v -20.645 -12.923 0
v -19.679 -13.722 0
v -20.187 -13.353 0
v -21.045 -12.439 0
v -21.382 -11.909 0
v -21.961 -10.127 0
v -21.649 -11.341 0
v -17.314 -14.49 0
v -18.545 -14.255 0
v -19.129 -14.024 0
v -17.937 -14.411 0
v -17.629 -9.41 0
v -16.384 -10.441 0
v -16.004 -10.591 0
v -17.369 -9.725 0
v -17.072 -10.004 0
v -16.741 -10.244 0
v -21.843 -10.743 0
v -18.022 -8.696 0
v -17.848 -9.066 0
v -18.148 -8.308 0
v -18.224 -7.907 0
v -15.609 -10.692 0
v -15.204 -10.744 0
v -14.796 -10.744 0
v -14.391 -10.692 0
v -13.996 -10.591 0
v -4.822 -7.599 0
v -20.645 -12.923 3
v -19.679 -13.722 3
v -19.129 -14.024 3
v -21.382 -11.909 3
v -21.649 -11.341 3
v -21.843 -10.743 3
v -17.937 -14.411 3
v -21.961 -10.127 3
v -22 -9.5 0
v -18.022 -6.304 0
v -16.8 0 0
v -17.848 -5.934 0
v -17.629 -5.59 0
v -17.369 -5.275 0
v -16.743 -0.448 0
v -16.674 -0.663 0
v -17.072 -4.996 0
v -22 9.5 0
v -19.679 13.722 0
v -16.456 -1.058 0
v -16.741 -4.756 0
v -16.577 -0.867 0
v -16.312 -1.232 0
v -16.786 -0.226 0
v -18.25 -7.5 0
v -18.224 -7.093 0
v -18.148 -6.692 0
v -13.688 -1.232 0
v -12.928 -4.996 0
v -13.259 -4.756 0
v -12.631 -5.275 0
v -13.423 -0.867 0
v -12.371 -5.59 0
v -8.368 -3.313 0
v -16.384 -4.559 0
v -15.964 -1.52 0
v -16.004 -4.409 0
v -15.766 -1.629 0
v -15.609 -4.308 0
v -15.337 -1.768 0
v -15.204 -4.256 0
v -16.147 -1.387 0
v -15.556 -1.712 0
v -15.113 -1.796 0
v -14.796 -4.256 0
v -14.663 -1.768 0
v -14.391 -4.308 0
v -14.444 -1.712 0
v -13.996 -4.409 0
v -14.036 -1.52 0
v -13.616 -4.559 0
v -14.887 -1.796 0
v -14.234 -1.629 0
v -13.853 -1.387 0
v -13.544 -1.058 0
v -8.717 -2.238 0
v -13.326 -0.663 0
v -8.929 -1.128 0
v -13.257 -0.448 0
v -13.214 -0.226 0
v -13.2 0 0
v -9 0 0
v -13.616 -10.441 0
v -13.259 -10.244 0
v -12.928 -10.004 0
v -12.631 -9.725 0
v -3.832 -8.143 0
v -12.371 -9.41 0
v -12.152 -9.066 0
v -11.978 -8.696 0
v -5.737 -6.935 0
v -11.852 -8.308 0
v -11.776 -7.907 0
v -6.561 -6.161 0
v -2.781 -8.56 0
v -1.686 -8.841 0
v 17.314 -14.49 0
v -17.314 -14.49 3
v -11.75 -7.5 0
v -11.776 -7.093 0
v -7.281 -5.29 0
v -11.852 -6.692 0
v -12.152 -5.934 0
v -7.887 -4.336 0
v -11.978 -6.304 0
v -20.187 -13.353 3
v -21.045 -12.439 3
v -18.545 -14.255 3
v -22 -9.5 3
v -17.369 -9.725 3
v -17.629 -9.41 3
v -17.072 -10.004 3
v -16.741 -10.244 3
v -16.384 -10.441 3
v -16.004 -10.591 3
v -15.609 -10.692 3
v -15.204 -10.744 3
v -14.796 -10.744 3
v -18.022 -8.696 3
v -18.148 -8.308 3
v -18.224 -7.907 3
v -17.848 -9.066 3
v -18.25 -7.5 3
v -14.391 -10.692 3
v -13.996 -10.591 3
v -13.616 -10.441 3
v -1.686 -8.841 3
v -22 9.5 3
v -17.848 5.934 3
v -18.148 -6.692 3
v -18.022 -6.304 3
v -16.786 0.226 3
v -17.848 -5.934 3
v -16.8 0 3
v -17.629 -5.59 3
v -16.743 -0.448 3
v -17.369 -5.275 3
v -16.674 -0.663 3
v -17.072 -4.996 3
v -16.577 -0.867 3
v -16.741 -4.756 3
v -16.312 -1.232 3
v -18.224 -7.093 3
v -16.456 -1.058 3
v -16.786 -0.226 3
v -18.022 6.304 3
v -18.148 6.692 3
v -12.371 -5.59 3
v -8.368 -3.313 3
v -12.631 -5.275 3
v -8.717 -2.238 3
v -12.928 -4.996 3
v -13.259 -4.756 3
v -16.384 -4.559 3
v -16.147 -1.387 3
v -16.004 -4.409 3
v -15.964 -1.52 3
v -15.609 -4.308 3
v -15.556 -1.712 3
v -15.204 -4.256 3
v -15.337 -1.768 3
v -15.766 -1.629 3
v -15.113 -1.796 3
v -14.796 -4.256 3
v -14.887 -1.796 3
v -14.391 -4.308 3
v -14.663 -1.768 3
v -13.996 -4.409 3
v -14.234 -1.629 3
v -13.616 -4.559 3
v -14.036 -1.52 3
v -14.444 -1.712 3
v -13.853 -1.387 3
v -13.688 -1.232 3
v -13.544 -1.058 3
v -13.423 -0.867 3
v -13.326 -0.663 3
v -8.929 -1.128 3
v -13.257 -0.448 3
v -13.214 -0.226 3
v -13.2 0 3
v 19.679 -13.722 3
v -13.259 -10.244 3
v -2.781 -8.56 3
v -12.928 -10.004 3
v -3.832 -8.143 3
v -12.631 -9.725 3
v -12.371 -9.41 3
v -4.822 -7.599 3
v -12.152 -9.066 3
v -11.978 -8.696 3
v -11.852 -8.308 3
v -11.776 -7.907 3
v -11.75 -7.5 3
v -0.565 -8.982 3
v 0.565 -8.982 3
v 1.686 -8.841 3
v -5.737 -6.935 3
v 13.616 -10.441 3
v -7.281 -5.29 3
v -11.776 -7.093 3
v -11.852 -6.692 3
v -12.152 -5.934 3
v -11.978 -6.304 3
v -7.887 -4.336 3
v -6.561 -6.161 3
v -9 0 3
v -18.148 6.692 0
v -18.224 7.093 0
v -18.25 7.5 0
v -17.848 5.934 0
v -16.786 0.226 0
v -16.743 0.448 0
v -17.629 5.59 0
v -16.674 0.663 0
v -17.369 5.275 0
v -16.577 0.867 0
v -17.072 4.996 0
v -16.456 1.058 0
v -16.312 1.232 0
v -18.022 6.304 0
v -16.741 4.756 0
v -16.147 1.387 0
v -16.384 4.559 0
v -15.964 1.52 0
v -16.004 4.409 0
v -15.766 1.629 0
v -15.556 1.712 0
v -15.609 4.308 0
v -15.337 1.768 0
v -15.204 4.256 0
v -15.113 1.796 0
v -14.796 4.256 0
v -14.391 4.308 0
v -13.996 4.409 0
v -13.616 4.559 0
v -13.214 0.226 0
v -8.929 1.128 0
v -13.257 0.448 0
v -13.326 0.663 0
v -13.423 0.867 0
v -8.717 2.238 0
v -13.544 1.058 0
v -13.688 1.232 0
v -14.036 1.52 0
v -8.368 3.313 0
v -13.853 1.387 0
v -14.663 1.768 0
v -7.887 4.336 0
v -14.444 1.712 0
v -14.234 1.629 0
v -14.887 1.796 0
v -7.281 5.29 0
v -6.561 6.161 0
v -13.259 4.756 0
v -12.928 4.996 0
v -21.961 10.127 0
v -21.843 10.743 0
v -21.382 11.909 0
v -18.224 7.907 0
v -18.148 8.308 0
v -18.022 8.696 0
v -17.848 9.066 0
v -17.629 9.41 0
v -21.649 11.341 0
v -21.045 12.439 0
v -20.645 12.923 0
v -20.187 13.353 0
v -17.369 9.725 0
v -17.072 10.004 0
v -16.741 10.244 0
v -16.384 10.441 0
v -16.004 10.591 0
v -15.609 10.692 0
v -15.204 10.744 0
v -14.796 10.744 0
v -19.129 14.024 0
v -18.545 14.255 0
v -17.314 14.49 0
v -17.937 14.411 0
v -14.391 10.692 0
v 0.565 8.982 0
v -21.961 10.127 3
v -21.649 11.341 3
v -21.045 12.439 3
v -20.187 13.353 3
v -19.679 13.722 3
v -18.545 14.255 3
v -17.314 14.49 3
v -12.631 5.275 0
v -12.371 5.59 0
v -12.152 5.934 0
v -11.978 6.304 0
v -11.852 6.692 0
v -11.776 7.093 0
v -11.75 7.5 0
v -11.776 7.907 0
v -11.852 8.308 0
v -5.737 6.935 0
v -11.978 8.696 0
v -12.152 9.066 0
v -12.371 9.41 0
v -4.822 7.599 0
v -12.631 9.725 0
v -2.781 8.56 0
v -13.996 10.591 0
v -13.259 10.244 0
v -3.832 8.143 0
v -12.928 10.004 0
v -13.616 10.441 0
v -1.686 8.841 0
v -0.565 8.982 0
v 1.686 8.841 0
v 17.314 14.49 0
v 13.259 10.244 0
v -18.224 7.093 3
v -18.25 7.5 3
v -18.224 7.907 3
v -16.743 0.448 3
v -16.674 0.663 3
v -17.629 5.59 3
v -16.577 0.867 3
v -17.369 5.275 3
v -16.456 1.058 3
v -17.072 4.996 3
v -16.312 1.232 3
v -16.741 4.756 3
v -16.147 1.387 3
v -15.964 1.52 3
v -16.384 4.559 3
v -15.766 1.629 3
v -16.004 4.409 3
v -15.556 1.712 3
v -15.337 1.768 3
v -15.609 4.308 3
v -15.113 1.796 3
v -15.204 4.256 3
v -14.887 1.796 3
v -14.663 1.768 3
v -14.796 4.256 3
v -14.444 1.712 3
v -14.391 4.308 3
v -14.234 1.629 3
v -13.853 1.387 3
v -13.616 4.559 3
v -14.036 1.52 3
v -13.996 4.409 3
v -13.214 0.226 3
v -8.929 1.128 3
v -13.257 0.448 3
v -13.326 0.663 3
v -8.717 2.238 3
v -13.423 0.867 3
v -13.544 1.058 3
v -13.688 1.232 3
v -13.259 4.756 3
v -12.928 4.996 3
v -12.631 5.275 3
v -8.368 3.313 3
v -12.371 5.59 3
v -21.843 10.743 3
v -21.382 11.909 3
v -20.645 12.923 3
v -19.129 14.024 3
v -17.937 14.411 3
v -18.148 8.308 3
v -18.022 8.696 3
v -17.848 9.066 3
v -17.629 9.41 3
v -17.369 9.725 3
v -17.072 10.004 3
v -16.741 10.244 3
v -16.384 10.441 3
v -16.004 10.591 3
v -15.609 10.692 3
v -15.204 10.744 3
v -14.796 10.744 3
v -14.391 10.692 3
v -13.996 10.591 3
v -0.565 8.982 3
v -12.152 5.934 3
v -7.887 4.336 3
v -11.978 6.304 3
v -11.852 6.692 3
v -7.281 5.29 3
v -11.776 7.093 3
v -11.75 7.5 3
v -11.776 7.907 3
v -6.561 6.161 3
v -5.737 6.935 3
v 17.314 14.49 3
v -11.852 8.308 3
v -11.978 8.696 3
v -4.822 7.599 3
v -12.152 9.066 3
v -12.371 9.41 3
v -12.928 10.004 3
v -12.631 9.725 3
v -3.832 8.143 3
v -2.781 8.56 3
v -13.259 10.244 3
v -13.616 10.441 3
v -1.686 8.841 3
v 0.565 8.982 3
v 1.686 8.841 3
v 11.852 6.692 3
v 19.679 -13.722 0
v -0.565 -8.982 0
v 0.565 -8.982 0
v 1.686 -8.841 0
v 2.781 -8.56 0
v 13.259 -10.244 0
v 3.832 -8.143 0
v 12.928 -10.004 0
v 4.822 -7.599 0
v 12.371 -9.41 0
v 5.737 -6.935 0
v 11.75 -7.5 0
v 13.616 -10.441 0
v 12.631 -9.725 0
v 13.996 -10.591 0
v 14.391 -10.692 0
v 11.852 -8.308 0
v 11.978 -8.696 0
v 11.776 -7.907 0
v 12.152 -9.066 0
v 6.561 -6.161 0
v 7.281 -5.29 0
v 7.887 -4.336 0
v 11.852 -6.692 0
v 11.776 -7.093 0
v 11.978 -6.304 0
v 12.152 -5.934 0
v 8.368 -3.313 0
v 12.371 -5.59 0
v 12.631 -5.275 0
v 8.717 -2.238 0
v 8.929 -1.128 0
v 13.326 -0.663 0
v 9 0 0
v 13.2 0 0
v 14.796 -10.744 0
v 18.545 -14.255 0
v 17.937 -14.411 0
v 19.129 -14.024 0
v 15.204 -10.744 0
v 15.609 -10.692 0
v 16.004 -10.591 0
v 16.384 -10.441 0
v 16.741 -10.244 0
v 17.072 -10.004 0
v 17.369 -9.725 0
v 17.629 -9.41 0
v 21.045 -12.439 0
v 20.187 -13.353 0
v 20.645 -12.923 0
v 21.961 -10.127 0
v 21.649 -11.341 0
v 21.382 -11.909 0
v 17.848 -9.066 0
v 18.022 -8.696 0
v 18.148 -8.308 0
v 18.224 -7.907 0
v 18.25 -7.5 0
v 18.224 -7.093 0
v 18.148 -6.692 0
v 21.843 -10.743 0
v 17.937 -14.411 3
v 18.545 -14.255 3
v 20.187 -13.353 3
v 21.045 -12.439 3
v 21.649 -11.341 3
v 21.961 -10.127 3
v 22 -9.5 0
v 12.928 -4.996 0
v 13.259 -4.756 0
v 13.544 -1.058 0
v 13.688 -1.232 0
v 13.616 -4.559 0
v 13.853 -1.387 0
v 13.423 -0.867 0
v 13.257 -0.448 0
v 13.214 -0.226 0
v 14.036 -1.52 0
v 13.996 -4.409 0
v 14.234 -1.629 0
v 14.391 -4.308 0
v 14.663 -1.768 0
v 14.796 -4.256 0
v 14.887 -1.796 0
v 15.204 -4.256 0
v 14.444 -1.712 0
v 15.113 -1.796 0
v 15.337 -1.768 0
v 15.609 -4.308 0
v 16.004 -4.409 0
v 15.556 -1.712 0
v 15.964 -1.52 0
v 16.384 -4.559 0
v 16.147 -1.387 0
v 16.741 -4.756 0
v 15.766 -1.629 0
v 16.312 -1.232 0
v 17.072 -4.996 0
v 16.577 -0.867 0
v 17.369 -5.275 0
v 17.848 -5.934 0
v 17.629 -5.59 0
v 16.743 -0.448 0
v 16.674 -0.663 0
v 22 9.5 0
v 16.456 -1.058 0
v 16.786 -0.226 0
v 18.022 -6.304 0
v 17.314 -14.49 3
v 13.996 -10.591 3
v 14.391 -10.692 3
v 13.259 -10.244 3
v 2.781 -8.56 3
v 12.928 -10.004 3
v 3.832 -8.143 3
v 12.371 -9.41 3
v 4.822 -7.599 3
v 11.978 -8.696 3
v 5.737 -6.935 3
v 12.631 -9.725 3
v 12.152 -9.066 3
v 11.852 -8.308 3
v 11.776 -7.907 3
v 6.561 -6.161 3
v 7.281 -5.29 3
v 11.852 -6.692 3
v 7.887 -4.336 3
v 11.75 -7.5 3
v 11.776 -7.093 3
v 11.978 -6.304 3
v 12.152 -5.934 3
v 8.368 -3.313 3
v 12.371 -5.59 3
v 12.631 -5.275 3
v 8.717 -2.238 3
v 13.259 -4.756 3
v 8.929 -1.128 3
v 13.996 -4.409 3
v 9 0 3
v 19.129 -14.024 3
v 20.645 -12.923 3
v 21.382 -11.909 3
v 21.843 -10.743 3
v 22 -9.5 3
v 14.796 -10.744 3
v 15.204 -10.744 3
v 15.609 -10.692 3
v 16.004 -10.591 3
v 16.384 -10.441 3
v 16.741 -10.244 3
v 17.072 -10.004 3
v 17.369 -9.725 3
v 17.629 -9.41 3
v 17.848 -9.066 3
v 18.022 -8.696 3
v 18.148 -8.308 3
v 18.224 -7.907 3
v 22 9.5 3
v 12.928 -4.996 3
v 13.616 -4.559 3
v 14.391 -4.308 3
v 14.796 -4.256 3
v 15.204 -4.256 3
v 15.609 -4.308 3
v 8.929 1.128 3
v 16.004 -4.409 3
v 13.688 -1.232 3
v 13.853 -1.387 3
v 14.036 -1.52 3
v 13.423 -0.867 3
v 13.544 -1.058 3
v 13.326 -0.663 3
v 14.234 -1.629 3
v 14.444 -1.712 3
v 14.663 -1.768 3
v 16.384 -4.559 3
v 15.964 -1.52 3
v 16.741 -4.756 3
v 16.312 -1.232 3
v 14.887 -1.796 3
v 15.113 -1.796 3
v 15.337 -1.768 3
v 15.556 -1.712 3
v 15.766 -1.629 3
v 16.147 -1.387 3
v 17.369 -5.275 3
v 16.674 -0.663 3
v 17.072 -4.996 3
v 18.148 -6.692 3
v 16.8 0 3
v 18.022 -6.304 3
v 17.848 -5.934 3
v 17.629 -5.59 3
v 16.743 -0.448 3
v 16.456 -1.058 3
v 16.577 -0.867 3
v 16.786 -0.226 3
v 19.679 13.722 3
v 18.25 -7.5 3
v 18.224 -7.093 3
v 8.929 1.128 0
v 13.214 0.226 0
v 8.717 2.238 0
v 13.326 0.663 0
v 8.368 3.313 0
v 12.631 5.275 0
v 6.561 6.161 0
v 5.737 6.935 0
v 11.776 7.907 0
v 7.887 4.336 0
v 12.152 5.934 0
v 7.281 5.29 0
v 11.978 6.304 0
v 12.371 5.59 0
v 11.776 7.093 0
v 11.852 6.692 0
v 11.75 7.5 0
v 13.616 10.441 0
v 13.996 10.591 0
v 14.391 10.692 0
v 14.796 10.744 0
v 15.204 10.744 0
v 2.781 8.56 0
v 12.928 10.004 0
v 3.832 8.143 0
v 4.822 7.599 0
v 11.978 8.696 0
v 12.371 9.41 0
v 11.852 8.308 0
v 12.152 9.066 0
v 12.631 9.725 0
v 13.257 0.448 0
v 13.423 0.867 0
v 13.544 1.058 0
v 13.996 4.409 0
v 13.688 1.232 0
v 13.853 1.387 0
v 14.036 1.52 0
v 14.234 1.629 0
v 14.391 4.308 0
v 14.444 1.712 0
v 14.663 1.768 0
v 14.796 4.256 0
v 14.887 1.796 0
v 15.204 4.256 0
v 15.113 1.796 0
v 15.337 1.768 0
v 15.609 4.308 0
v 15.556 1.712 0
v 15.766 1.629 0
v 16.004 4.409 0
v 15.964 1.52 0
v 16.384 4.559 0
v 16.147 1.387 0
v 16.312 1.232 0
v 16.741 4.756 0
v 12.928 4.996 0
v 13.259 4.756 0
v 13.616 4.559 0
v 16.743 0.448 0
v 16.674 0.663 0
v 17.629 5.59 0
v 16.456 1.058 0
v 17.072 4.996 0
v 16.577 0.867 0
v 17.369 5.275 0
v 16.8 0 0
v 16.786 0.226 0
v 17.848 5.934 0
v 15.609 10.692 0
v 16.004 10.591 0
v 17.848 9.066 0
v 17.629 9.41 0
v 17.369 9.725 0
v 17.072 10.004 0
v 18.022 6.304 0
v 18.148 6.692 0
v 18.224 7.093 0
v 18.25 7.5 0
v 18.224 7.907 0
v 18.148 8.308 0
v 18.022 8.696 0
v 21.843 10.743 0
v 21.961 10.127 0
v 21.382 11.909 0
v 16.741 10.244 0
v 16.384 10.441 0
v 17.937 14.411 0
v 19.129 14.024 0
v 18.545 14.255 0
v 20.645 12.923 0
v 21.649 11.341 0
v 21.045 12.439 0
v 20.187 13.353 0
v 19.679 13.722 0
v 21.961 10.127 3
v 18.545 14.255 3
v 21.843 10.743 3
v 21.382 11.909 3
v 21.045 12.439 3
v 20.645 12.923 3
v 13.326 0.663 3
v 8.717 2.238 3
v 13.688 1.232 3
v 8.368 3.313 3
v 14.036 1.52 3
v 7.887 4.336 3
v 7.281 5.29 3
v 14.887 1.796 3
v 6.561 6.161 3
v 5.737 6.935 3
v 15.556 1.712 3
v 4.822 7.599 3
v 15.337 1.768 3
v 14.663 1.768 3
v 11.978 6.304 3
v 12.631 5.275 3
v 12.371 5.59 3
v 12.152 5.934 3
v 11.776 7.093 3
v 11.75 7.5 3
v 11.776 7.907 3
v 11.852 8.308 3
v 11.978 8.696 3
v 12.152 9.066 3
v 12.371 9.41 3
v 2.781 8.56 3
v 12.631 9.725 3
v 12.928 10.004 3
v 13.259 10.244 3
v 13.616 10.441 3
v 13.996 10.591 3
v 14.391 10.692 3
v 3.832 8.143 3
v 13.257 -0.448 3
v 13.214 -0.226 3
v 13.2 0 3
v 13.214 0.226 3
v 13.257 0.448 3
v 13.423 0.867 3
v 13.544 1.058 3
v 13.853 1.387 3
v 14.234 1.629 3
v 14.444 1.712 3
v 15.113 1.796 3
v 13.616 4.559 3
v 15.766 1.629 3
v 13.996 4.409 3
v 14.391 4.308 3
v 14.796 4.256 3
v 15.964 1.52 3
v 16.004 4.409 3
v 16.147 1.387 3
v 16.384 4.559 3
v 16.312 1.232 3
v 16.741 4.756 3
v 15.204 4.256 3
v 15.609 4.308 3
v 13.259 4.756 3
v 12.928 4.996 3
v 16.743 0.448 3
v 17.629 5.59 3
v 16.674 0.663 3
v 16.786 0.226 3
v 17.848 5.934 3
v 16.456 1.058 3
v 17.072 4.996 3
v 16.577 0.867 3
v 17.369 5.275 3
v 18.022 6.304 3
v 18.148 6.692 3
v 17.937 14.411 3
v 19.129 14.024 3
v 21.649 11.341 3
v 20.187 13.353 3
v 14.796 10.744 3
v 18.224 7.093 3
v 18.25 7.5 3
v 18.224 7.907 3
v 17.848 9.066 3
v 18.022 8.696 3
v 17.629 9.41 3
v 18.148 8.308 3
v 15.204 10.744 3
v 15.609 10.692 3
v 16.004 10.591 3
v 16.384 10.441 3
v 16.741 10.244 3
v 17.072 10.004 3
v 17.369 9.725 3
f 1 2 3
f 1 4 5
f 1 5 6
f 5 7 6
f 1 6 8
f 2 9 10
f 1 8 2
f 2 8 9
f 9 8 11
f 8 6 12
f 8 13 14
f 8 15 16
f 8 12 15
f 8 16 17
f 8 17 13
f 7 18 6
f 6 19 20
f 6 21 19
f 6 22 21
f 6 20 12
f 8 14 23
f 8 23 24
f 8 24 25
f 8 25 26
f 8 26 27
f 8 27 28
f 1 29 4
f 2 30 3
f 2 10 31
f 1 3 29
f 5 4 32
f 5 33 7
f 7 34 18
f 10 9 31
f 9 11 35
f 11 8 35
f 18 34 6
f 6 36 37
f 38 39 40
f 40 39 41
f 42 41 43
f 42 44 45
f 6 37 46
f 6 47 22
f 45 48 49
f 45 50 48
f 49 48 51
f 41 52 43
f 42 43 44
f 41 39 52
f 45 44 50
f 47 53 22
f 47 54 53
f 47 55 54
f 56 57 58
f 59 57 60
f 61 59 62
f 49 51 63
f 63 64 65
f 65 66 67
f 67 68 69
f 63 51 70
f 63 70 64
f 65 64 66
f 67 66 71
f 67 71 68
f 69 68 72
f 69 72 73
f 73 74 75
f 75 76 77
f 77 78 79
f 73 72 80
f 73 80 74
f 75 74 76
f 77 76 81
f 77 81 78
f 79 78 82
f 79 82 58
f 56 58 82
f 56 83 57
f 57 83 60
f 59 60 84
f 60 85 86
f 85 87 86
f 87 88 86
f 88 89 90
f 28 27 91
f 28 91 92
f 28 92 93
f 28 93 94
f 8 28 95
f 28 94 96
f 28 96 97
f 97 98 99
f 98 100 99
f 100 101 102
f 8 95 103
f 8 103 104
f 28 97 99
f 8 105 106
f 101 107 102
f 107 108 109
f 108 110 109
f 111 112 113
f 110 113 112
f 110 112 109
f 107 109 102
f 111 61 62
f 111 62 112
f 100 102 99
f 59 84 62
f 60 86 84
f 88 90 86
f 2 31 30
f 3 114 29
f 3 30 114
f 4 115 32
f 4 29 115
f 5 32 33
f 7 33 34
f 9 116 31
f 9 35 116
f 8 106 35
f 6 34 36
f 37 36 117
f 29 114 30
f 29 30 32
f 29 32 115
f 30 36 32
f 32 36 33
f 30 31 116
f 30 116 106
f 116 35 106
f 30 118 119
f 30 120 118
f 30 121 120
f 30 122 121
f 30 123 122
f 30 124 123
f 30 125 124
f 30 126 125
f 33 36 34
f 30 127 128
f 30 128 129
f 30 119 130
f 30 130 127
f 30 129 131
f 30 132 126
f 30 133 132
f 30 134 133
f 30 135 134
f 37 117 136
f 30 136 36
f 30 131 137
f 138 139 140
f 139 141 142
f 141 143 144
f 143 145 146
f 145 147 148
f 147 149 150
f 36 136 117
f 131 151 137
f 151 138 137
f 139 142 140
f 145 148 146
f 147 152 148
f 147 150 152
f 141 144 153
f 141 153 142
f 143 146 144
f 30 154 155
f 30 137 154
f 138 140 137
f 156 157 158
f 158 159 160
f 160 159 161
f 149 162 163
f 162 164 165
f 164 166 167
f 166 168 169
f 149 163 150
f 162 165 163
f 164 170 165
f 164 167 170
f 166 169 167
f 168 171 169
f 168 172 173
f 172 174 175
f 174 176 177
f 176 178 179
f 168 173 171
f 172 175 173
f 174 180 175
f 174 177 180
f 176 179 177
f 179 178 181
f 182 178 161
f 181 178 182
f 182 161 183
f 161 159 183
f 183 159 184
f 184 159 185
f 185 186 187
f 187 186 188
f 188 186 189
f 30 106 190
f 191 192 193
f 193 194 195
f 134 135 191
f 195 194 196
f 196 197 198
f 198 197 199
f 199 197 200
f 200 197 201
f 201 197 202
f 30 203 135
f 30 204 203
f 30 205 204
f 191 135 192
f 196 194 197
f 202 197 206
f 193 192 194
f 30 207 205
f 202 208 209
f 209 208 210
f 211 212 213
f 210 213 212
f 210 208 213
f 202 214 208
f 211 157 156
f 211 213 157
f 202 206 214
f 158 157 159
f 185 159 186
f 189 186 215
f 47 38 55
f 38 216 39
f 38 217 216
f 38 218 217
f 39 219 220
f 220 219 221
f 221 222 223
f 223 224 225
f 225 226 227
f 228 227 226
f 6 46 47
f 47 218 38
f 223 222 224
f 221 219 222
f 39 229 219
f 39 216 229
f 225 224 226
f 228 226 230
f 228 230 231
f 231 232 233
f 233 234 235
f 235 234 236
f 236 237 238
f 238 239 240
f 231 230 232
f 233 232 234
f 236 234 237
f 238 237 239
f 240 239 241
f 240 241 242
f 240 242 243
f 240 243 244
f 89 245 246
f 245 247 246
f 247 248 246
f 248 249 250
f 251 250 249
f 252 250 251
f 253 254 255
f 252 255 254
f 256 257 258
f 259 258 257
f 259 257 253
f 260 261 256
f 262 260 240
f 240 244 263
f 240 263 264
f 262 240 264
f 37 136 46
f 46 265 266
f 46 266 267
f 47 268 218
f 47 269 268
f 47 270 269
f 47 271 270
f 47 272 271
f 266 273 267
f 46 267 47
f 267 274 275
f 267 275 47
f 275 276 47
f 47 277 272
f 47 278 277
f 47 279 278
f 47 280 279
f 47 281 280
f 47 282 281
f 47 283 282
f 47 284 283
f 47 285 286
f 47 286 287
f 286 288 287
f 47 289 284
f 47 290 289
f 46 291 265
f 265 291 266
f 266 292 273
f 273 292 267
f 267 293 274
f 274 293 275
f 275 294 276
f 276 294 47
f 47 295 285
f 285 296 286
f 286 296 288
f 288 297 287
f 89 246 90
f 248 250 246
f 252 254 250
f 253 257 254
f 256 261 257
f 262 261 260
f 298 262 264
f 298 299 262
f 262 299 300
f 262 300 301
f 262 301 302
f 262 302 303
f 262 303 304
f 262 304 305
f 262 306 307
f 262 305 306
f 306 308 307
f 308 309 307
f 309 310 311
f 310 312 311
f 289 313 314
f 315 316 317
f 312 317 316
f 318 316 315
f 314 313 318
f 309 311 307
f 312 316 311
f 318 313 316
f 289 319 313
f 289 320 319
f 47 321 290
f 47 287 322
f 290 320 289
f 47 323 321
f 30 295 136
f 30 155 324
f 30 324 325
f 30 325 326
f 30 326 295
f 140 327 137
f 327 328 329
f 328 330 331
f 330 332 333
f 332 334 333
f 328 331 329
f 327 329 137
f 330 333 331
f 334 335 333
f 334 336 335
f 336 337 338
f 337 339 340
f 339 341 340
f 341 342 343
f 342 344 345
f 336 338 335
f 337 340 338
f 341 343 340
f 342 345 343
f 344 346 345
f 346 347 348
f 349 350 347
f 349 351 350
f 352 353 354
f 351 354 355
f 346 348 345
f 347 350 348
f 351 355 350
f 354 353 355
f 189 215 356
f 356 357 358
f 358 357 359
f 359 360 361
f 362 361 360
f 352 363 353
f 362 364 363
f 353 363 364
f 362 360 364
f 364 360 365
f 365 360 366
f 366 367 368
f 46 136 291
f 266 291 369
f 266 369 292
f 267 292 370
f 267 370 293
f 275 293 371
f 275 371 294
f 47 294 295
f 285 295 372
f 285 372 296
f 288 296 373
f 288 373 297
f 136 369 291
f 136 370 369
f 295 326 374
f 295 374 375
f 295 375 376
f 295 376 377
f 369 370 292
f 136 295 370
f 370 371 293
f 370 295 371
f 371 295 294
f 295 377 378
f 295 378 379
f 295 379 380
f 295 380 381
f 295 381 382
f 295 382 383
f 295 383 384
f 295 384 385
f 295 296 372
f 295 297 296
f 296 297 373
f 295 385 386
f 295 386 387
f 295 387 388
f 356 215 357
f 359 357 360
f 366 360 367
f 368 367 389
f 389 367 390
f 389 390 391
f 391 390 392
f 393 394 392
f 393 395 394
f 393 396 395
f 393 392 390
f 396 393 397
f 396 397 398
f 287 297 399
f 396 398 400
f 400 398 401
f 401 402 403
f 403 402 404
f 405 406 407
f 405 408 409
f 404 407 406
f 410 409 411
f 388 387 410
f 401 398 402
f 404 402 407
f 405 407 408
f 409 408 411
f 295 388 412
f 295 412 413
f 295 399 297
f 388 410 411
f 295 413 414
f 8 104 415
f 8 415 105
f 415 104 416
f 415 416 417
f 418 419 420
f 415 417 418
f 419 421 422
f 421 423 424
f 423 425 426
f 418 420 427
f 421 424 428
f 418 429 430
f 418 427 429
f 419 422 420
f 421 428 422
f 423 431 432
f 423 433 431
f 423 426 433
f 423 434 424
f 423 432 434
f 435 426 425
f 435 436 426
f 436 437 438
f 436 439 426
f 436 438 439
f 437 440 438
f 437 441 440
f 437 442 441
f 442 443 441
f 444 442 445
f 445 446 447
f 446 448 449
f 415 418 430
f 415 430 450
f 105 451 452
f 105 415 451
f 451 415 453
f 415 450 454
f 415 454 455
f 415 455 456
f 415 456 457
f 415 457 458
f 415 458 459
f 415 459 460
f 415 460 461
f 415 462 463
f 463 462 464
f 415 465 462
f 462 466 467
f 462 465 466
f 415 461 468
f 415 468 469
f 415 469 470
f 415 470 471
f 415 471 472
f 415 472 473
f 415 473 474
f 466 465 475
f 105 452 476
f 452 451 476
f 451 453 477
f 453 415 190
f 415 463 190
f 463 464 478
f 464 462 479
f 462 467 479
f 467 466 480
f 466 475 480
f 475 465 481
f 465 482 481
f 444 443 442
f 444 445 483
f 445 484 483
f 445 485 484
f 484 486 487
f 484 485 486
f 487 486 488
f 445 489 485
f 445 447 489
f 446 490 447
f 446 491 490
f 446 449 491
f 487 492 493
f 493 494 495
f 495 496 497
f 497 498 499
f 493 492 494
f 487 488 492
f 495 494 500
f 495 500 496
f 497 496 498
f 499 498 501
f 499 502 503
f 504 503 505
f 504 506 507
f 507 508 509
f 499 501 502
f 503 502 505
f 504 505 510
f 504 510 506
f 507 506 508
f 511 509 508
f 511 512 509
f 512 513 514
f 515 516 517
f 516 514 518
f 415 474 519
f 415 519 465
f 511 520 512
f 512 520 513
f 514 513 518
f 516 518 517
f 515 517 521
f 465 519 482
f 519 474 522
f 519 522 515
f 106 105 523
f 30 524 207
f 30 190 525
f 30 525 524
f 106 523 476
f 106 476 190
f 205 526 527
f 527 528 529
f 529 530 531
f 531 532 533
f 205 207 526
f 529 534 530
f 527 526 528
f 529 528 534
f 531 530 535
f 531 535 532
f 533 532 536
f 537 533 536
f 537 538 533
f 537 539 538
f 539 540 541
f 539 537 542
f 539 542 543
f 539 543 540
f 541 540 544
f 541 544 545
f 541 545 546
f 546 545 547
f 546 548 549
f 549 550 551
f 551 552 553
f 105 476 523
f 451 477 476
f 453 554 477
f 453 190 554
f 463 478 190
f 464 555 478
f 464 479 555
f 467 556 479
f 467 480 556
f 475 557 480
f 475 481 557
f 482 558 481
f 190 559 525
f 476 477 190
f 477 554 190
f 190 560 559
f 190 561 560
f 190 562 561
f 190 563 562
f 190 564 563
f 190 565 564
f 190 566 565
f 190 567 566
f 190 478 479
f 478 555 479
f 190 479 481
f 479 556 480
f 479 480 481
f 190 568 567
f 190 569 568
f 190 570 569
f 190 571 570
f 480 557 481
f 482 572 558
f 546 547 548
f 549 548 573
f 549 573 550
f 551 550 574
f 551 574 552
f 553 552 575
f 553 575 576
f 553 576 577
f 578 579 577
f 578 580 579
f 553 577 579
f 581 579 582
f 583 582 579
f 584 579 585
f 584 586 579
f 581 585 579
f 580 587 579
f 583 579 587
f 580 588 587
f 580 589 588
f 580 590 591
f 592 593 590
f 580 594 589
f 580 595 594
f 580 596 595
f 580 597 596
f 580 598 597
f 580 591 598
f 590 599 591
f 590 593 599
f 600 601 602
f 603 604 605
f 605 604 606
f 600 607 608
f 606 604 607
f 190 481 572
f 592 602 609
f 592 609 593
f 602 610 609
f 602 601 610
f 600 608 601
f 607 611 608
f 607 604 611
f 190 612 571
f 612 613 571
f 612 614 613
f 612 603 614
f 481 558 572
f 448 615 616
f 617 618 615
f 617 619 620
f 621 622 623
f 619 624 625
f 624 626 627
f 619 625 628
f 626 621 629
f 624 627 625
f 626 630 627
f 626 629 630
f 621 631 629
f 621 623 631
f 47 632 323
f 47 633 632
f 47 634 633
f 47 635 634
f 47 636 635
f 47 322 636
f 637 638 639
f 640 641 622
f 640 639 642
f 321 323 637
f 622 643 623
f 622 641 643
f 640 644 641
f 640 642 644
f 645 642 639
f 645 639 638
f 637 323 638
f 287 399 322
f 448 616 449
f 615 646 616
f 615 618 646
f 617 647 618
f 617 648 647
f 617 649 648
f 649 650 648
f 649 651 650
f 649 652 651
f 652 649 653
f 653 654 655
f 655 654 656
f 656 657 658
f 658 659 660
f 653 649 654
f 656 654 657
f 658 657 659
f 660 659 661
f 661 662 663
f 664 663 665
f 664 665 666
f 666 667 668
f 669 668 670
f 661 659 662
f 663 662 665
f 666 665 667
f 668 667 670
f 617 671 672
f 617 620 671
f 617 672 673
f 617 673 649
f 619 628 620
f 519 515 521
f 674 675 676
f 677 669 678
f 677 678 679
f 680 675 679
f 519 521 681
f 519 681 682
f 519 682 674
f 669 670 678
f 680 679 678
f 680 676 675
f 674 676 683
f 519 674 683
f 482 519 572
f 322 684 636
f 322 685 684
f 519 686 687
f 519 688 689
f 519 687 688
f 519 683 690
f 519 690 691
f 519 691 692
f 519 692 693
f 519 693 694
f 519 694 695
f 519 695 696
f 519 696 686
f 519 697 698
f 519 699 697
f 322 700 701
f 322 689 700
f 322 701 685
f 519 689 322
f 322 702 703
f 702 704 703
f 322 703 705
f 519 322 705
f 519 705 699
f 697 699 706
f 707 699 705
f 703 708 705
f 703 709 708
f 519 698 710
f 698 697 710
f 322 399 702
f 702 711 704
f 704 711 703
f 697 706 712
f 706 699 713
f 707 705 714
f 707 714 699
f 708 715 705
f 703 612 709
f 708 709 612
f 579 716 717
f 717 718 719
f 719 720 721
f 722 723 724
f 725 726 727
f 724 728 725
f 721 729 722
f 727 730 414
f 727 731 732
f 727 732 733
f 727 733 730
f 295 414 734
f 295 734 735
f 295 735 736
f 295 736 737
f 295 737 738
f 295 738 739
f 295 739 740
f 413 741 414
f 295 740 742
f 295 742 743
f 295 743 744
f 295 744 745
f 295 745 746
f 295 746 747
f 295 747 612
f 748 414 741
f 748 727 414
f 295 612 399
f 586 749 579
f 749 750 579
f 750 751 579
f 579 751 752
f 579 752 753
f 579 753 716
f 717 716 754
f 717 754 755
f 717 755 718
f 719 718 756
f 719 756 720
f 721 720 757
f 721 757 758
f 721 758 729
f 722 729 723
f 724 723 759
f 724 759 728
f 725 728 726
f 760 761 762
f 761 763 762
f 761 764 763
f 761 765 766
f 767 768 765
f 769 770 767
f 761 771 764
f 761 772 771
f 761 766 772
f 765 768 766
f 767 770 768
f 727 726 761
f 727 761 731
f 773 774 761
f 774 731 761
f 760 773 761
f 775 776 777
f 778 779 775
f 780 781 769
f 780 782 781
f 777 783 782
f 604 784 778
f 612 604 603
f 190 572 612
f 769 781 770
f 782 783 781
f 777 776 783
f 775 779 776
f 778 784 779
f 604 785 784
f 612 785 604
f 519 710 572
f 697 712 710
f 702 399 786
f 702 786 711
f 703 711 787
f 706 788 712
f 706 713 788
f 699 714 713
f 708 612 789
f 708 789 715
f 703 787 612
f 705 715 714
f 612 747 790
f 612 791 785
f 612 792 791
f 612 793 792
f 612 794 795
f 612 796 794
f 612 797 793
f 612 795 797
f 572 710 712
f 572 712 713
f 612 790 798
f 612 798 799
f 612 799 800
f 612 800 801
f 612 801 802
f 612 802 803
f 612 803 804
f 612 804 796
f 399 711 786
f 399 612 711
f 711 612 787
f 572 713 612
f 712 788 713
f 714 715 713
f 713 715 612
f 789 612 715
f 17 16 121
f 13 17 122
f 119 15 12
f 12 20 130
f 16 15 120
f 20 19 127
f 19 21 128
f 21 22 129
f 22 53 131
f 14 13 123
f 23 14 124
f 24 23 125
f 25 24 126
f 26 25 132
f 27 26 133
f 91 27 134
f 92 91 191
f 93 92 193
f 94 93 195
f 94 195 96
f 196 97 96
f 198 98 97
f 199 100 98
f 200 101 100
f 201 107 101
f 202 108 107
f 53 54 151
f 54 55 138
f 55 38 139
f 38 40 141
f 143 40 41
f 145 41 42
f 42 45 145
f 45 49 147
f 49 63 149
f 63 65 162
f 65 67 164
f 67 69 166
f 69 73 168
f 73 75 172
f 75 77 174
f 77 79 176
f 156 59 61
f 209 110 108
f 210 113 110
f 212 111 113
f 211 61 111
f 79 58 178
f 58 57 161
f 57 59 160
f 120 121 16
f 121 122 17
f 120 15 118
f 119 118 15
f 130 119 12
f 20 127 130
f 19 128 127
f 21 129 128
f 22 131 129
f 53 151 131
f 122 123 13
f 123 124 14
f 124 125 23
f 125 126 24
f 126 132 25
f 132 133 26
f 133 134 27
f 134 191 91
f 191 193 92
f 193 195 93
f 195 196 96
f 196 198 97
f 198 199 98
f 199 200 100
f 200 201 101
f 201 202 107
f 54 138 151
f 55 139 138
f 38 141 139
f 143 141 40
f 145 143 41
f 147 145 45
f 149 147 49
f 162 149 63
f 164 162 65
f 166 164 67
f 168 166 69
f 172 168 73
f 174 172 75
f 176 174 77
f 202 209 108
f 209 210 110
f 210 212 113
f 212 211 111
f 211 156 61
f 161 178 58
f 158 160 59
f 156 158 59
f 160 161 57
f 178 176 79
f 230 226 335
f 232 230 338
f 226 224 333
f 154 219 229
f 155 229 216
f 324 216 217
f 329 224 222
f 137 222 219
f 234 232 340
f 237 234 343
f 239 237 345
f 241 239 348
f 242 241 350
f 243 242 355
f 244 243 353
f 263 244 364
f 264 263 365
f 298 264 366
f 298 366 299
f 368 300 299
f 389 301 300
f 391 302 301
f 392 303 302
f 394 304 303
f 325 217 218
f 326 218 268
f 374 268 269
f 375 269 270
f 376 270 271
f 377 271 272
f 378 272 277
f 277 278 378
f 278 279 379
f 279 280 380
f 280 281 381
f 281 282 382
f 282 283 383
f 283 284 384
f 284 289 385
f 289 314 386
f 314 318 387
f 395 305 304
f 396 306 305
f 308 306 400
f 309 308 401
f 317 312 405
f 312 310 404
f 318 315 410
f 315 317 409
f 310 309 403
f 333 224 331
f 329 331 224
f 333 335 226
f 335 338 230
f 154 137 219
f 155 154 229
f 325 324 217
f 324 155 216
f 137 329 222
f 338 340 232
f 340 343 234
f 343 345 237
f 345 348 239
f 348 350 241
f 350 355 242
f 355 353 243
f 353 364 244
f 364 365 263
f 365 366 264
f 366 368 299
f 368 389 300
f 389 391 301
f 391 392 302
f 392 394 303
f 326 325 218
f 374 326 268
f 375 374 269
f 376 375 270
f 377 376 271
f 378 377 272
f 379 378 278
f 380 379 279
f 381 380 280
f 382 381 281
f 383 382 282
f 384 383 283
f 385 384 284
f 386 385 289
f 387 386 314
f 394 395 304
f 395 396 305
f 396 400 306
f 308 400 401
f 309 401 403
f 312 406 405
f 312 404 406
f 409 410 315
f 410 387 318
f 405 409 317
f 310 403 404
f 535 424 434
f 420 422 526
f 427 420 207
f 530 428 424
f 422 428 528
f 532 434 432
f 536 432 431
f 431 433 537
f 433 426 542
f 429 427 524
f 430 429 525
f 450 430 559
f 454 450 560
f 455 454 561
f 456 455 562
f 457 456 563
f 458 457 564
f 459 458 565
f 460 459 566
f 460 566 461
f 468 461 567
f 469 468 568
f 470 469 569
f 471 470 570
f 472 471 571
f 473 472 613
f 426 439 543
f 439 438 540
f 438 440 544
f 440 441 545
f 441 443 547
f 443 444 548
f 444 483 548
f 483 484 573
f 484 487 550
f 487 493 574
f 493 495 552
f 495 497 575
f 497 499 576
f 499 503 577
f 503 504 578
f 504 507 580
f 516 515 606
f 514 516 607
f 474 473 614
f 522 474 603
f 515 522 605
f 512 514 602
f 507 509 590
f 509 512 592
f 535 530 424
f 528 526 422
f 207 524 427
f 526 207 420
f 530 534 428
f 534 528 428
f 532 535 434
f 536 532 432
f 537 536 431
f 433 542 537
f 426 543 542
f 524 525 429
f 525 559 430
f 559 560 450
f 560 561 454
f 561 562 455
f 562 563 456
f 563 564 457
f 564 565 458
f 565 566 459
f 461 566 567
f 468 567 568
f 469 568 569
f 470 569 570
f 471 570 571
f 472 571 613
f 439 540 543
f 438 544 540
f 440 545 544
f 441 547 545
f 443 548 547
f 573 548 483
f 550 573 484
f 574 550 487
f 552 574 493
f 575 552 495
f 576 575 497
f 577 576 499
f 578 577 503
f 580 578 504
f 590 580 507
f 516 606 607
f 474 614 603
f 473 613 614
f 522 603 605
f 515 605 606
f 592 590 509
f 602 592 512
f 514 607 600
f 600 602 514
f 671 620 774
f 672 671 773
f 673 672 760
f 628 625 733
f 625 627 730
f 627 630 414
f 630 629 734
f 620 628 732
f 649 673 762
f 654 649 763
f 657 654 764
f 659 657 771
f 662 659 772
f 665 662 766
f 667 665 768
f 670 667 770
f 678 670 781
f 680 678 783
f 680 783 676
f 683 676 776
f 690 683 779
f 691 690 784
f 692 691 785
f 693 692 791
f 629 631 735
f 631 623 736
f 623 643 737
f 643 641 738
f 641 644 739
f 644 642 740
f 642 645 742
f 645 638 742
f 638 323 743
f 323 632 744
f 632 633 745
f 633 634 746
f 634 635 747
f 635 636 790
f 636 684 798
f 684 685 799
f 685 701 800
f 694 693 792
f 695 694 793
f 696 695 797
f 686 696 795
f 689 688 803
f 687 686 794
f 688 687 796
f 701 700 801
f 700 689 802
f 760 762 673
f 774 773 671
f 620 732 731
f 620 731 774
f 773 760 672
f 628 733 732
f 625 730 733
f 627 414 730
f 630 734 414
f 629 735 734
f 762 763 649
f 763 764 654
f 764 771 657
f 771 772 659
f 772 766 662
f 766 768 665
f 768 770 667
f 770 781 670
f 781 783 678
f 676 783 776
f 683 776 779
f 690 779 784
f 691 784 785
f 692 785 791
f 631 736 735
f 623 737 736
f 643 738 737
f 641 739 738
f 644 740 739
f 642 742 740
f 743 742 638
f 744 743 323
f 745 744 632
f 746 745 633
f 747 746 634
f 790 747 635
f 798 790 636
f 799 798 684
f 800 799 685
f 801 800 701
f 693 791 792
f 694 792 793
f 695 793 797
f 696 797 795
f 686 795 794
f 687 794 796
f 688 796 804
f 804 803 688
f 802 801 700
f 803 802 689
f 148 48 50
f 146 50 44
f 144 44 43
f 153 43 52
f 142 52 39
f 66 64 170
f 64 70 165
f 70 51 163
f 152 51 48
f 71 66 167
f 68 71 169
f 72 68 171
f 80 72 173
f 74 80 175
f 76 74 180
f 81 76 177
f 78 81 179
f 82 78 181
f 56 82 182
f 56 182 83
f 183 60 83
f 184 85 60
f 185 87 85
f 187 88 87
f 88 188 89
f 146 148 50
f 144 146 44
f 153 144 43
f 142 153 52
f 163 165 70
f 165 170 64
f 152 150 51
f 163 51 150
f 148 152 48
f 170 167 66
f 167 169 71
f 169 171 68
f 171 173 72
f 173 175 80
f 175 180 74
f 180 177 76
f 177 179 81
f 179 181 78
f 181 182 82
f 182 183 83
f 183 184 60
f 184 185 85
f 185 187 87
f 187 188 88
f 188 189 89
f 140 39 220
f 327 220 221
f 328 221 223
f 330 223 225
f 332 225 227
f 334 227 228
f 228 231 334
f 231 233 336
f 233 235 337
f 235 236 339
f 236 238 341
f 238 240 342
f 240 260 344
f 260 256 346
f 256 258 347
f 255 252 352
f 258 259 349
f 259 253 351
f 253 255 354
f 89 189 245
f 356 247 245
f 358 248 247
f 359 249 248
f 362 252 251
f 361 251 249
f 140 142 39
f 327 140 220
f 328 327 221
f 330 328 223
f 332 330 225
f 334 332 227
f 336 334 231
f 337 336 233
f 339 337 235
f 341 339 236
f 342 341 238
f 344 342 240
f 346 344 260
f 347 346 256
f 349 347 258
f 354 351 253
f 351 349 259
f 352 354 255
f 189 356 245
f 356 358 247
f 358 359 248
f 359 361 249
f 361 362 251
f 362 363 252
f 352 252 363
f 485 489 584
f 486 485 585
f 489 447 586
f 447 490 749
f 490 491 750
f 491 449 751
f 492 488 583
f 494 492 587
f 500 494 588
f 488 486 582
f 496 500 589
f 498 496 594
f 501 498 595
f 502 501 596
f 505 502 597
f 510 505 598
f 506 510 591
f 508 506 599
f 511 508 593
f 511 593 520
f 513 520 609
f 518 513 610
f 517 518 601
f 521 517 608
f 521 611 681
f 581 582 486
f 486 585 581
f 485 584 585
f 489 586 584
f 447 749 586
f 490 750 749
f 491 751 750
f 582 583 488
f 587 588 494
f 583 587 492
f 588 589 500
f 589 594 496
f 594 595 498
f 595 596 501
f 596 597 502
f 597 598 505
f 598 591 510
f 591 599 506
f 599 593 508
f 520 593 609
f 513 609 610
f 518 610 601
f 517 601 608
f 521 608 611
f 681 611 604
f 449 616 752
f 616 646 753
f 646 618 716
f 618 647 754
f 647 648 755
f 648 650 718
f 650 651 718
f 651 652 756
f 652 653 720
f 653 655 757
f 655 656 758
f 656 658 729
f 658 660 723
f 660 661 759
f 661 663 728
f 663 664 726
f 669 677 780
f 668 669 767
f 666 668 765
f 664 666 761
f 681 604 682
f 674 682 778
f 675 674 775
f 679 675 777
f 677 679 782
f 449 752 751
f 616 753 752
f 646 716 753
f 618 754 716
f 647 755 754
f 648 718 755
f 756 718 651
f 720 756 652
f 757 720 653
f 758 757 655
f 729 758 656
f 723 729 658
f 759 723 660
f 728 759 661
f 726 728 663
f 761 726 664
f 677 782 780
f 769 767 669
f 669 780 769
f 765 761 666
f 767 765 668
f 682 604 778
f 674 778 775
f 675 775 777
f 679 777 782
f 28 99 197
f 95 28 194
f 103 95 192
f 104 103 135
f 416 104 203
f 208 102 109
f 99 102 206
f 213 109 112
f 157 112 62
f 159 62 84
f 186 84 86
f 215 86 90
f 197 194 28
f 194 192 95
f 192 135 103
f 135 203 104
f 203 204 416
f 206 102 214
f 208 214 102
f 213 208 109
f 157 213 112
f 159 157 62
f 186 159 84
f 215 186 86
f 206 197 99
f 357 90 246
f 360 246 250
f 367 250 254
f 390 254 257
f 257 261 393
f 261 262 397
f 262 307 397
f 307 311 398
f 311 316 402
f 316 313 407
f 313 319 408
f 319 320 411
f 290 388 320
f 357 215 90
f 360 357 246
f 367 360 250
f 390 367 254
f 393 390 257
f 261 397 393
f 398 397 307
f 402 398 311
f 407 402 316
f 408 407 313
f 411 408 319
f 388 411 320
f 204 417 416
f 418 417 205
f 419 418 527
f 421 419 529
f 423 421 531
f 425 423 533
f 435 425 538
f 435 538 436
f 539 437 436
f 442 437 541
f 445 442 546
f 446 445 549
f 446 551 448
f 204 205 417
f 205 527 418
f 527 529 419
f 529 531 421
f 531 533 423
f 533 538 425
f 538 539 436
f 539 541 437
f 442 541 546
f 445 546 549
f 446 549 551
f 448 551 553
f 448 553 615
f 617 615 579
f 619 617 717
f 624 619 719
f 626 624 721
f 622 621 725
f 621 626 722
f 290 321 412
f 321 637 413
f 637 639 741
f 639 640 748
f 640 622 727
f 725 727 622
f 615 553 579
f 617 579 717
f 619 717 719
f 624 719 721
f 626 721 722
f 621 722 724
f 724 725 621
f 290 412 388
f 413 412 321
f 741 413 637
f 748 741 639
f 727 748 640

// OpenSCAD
$fn = 50;

difference() {
	union() {
		hull() {
			translate(v = [-17.0, 9.5, 0]) {
				cylinder(h = 3, r = 5);
			}
			translate(v = [17.0, 9.5, 0]) {
				cylinder(h = 3, r = 5);
			}
			translate(v = [-17.0, -9.5, 0]) {
				cylinder(h = 3, r = 5);
			}
			translate(v = [17.0, -9.5, 0]) {
				cylinder(h = 3, r = 5);
			}
		}
	}
	union() {
		translate(v = [-15.0, -7.5, 0]) {
			cylinder(h = 3, r = 3.25);
		}
		translate(v = [-15.0, 7.5, 0]) {
			cylinder(h = 3, r = 3.25);
		}
		translate(v = [15.0, -7.5, 0]) {
			cylinder(h = 3, r = 3.25);
		}
		translate(v = [15.0, 7.5, 0]) {
			cylinder(h = 3, r = 3.25);
		}
		translate(v = [-15.0, 0.0, 0]) {
			cylinder(h = 3, r = 1.8);
		}
		translate(v = [15.0, 0.0, 0]) {
			cylinder(h = 3, r = 1.8);
		}
		cylinder(h = 3, r = 9.0);
	}
}
